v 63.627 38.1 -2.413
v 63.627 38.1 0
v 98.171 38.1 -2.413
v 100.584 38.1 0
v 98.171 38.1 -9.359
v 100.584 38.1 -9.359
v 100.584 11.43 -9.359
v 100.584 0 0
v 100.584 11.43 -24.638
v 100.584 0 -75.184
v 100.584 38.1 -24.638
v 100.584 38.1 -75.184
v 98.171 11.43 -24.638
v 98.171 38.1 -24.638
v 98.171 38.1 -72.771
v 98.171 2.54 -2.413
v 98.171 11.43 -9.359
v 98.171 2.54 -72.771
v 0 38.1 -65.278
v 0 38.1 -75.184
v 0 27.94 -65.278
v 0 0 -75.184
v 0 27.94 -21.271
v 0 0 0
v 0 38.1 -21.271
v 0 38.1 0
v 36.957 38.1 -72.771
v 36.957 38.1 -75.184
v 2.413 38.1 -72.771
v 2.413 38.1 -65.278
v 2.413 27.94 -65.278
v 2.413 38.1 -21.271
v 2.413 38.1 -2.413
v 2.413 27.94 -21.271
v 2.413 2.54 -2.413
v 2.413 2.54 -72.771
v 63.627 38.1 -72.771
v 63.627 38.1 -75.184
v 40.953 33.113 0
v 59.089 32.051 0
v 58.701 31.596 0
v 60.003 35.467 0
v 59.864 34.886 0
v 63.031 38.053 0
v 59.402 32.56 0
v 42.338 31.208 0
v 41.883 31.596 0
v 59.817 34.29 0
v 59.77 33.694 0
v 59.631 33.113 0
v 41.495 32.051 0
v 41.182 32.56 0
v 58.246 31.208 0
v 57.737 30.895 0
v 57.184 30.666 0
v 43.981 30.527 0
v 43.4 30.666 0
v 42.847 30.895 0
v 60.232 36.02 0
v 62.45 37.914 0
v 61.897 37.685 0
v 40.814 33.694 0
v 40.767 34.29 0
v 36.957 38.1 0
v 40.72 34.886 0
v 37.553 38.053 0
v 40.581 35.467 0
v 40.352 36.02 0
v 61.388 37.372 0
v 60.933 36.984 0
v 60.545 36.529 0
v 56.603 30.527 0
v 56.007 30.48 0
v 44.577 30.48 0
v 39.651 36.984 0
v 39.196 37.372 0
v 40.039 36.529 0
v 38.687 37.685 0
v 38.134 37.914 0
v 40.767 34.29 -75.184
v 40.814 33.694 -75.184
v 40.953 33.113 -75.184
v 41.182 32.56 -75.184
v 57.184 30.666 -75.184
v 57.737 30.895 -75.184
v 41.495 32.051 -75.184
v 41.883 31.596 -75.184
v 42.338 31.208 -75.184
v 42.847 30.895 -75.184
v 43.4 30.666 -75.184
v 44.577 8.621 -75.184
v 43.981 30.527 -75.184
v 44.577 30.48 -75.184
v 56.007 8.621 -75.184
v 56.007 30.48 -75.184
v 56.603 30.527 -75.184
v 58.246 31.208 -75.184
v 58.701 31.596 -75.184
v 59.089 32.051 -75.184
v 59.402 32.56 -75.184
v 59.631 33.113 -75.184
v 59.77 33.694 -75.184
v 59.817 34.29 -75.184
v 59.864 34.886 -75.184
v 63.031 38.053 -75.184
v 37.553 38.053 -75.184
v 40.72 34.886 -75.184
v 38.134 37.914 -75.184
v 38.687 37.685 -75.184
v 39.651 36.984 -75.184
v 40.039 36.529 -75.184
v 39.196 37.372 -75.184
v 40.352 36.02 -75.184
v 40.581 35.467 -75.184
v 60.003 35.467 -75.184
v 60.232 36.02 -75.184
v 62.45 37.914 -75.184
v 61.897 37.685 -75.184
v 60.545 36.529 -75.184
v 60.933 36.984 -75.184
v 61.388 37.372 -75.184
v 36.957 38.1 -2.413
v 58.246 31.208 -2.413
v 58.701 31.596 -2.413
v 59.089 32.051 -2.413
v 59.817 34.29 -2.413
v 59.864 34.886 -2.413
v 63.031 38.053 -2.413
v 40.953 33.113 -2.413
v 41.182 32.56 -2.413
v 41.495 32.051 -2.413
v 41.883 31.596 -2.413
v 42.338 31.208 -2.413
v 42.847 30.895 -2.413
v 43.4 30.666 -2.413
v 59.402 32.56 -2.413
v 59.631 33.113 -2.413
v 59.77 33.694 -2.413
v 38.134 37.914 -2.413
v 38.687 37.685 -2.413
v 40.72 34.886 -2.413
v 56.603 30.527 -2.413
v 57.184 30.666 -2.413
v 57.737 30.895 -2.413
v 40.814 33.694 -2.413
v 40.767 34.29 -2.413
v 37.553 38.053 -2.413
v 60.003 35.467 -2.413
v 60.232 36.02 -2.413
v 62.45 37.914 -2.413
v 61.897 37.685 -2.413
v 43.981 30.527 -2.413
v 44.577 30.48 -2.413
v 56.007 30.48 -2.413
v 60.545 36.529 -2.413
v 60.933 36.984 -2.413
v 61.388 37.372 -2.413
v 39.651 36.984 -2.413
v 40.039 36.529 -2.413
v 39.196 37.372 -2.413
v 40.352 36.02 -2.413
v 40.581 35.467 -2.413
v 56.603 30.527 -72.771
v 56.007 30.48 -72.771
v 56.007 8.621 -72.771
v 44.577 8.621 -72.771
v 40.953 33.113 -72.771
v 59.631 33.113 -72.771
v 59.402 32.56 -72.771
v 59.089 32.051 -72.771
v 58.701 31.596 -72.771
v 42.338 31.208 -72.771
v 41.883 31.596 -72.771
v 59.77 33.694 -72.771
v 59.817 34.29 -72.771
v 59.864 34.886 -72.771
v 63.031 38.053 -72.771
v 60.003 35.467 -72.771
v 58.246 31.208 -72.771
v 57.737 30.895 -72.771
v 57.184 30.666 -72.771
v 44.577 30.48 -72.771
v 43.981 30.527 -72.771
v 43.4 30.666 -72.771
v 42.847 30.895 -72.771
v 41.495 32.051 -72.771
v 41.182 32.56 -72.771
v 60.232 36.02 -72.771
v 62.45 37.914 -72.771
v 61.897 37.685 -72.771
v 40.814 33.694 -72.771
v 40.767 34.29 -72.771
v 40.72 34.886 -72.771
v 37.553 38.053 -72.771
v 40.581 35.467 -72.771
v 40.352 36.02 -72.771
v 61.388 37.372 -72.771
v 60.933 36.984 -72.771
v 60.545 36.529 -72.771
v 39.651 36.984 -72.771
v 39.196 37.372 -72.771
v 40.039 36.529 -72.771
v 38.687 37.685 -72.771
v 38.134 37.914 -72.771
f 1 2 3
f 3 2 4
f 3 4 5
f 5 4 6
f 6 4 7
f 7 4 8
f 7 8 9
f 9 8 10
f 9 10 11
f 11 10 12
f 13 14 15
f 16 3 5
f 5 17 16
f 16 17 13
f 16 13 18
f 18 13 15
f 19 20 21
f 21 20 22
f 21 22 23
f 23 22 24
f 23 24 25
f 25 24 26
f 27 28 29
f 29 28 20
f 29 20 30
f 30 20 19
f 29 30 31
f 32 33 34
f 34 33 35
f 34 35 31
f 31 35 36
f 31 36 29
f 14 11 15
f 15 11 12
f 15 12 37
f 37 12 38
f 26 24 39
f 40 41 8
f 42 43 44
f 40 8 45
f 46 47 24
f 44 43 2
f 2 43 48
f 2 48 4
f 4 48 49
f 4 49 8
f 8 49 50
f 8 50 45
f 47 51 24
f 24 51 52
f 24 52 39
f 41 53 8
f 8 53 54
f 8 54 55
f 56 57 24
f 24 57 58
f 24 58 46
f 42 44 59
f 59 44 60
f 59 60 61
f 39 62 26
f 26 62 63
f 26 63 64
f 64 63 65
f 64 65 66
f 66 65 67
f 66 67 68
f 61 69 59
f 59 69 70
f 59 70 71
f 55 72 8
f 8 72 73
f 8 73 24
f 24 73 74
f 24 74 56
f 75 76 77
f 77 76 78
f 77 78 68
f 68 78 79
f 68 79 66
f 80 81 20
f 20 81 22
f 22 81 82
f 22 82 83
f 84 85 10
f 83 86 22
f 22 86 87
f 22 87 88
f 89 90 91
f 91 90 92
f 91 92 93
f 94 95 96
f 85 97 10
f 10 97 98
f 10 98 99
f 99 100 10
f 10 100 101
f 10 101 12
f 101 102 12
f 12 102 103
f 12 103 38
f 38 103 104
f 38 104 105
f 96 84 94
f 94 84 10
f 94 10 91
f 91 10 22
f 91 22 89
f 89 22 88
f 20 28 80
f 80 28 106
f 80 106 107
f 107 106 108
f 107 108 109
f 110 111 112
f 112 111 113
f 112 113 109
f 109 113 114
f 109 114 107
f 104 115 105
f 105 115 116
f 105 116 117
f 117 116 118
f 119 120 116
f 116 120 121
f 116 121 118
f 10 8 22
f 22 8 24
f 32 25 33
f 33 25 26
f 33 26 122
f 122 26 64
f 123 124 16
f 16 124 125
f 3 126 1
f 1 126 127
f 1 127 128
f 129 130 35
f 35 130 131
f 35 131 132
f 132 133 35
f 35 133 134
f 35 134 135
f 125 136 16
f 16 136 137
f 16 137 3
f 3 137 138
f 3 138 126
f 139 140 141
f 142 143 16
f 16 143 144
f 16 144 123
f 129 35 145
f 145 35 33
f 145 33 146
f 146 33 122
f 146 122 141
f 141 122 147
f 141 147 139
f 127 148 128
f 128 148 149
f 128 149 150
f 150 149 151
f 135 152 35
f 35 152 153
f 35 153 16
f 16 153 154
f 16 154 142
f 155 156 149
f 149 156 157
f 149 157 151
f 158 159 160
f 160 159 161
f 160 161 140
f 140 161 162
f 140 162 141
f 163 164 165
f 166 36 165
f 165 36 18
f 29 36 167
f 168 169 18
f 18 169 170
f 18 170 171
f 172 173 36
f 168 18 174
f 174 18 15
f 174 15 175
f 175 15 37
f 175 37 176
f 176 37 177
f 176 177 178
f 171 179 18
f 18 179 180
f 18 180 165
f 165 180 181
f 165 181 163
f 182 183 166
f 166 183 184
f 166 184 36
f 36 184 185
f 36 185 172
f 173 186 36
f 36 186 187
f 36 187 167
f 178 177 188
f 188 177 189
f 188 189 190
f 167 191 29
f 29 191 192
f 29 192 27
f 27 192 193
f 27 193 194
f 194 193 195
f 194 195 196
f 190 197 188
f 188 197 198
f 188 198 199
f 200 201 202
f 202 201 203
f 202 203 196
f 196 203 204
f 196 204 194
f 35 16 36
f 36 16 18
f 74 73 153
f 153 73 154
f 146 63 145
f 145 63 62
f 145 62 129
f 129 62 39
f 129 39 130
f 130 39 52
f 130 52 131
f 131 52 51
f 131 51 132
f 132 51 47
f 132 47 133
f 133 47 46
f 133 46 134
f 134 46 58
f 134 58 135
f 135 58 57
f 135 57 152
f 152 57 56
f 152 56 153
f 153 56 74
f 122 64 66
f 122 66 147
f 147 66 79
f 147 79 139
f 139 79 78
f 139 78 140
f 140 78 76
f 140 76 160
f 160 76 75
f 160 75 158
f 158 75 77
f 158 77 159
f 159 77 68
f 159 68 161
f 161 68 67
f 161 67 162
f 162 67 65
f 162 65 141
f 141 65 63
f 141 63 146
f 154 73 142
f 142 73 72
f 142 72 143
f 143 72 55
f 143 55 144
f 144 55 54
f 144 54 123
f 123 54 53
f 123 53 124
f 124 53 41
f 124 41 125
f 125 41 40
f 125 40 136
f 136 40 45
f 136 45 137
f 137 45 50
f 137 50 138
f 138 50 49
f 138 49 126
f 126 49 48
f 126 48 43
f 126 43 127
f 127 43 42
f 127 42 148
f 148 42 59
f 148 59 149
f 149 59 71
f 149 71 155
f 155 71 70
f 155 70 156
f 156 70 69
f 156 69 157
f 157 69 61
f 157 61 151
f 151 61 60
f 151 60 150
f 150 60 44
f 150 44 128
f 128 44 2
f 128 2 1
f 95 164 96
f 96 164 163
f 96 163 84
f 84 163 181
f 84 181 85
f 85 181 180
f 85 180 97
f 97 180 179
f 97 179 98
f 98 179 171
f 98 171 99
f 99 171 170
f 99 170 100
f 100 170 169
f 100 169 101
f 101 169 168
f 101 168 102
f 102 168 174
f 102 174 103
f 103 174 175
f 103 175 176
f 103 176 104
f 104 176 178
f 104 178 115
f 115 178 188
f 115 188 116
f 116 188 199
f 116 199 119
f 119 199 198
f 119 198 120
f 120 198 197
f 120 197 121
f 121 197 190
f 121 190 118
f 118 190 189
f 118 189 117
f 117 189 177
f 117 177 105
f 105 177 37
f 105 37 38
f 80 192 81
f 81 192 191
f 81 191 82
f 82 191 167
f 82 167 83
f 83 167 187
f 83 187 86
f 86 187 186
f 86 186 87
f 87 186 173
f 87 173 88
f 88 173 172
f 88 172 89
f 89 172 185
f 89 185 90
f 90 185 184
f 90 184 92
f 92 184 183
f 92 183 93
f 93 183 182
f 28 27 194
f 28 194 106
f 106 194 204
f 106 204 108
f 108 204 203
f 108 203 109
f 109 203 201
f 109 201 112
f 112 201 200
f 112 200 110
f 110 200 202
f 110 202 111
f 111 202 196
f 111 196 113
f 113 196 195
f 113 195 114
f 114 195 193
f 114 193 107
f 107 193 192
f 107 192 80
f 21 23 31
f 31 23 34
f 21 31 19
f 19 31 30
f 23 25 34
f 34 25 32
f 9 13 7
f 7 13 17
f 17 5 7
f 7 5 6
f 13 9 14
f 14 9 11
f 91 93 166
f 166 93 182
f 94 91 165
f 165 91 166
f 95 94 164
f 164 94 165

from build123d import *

# Parameters (mm, degrees)
SKETCH1_W           = 100.584
SKETCH1_H           = 75.184
BOSS_EXTRUDE1_DEPTH = 2.54
SKETCH2_W           = 100.584
SKETCH2_H           = 75.184
SKETCH2_W_2         = 95.758
SKETCH2_H_2         = 70.358
BOSS_EXTRUDE2_DEPTH = 35.56
SKETCH3_W           = 19.05
SKETCH3_H           = 7.62
CUT_EXTRUDE1_DEPTH  = 132.230274373
FILLET1_R           = 3.81
CUT_EXTRUDE2_DEPTH  = 6.35
SKETCH5_W           = 15.278664452
SKETCH5_H           = 26.67
CUT_EXTRUDE3_DEPTH  = 6.35
SKETCH6_W           = 11.43
SKETCH6_H           = 21.859082526
CUT_EXTRUDE4_DEPTH  = 6.35


with BuildPart() as part:
    # Sketch1 → Boss-Extrude1 (new body)
    with BuildSketch(Plane(origin=(0, 0, 0), x_dir=(1, 0, 0), z_dir=(0, 1, 0))):
        with Locations((50.292, 37.592)):
            Rectangle(SKETCH1_W, SKETCH1_H)
    extrude(amount=BOSS_EXTRUDE1_DEPTH)

    # Sketch2 → Boss-Extrude2 (add)
    with BuildSketch(Plane(origin=(0, 2.54, 0), x_dir=(1, 0, 0), z_dir=(0, 1, 0))):
        with Locations((50.292, 37.592)):
            Rectangle(SKETCH2_W, SKETCH2_H)
        with Locations((50.292, 37.592)):
            Rectangle(SKETCH2_W_2, SKETCH2_H_2, mode=Mode.SUBTRACT)
    extrude(amount=BOSS_EXTRUDE2_DEPTH)

    # Sketch3 → Cut-Extrude1 (cut, through all)
    with BuildSketch(Plane(origin=(0, 0, -75.184), x_dir=(-1, 0, 0), z_dir=(0, 0, -1))):
        with Locations((-50.292, 34.29)):
            Rectangle(SKETCH3_W, SKETCH3_H)
    extrude(amount=-CUT_EXTRUDE1_DEPTH, mode=Mode.SUBTRACT)

    # Fillet1
    fillet1_edges = [part.edges().sort_by_distance(p)[0] for p in [
        (40.767, 30.48, -1.2065),
        (59.817, 30.48, -1.2065),
        (59.817, 30.48, -73.9775),
        (40.767, 30.48, -73.9775),
    ]]
    fillet(fillet1_edges, radius=FILLET1_R)
    fillet1_2_edges = [part.edges().sort_by_distance(p)[0] for p in [
        (40.767, 38.1, -1.2065),
        (59.817, 38.1, -1.2065),
        (59.817, 38.1, -73.9775),
        (40.767, 38.1, -73.9775),
    ]]
    fillet(fillet1_2_edges, radius=FILLET1_R - 0.0001)  # a hair under: the kernel refuses the full size

    # Sketch4 → Cut-Extrude2 (cut)
    with BuildSketch(Plane.ZY):
        Polygon((-21.270705039, 38.1), (-58.928, 38.1), (-65.278, 38.1), (-65.278, 31.750254), (-65.278, 27.940254), (-58.928, 27.940254), (-21.270705039, 27.940254), align=None)
    extrude(amount=-CUT_EXTRUDE2_DEPTH, mode=Mode.SUBTRACT)

    # Sketch5 → Cut-Extrude3 (cut)
    with BuildSketch(Plane(origin=(100.584, 0, 0), x_dir=(0, 0, -1), z_dir=(1, 0, 0))):
        with Locations((16.998667774, 24.765254)):
            Rectangle(SKETCH5_W, SKETCH5_H)
    extrude(amount=-CUT_EXTRUDE3_DEPTH, mode=Mode.SUBTRACT)

    # Sketch6 → Cut-Extrude4 (cut)
    with BuildSketch(Plane(origin=(0, 0, -75.184), x_dir=(-1, 0, 0), z_dir=(0, 0, -1))):
        with Locations((-50.292, 19.550458737)):
            Rectangle(SKETCH6_W, SKETCH6_H)
    extrude(amount=-CUT_EXTRUDE4_DEPTH, mode=Mode.SUBTRACT)


solid = part.part
